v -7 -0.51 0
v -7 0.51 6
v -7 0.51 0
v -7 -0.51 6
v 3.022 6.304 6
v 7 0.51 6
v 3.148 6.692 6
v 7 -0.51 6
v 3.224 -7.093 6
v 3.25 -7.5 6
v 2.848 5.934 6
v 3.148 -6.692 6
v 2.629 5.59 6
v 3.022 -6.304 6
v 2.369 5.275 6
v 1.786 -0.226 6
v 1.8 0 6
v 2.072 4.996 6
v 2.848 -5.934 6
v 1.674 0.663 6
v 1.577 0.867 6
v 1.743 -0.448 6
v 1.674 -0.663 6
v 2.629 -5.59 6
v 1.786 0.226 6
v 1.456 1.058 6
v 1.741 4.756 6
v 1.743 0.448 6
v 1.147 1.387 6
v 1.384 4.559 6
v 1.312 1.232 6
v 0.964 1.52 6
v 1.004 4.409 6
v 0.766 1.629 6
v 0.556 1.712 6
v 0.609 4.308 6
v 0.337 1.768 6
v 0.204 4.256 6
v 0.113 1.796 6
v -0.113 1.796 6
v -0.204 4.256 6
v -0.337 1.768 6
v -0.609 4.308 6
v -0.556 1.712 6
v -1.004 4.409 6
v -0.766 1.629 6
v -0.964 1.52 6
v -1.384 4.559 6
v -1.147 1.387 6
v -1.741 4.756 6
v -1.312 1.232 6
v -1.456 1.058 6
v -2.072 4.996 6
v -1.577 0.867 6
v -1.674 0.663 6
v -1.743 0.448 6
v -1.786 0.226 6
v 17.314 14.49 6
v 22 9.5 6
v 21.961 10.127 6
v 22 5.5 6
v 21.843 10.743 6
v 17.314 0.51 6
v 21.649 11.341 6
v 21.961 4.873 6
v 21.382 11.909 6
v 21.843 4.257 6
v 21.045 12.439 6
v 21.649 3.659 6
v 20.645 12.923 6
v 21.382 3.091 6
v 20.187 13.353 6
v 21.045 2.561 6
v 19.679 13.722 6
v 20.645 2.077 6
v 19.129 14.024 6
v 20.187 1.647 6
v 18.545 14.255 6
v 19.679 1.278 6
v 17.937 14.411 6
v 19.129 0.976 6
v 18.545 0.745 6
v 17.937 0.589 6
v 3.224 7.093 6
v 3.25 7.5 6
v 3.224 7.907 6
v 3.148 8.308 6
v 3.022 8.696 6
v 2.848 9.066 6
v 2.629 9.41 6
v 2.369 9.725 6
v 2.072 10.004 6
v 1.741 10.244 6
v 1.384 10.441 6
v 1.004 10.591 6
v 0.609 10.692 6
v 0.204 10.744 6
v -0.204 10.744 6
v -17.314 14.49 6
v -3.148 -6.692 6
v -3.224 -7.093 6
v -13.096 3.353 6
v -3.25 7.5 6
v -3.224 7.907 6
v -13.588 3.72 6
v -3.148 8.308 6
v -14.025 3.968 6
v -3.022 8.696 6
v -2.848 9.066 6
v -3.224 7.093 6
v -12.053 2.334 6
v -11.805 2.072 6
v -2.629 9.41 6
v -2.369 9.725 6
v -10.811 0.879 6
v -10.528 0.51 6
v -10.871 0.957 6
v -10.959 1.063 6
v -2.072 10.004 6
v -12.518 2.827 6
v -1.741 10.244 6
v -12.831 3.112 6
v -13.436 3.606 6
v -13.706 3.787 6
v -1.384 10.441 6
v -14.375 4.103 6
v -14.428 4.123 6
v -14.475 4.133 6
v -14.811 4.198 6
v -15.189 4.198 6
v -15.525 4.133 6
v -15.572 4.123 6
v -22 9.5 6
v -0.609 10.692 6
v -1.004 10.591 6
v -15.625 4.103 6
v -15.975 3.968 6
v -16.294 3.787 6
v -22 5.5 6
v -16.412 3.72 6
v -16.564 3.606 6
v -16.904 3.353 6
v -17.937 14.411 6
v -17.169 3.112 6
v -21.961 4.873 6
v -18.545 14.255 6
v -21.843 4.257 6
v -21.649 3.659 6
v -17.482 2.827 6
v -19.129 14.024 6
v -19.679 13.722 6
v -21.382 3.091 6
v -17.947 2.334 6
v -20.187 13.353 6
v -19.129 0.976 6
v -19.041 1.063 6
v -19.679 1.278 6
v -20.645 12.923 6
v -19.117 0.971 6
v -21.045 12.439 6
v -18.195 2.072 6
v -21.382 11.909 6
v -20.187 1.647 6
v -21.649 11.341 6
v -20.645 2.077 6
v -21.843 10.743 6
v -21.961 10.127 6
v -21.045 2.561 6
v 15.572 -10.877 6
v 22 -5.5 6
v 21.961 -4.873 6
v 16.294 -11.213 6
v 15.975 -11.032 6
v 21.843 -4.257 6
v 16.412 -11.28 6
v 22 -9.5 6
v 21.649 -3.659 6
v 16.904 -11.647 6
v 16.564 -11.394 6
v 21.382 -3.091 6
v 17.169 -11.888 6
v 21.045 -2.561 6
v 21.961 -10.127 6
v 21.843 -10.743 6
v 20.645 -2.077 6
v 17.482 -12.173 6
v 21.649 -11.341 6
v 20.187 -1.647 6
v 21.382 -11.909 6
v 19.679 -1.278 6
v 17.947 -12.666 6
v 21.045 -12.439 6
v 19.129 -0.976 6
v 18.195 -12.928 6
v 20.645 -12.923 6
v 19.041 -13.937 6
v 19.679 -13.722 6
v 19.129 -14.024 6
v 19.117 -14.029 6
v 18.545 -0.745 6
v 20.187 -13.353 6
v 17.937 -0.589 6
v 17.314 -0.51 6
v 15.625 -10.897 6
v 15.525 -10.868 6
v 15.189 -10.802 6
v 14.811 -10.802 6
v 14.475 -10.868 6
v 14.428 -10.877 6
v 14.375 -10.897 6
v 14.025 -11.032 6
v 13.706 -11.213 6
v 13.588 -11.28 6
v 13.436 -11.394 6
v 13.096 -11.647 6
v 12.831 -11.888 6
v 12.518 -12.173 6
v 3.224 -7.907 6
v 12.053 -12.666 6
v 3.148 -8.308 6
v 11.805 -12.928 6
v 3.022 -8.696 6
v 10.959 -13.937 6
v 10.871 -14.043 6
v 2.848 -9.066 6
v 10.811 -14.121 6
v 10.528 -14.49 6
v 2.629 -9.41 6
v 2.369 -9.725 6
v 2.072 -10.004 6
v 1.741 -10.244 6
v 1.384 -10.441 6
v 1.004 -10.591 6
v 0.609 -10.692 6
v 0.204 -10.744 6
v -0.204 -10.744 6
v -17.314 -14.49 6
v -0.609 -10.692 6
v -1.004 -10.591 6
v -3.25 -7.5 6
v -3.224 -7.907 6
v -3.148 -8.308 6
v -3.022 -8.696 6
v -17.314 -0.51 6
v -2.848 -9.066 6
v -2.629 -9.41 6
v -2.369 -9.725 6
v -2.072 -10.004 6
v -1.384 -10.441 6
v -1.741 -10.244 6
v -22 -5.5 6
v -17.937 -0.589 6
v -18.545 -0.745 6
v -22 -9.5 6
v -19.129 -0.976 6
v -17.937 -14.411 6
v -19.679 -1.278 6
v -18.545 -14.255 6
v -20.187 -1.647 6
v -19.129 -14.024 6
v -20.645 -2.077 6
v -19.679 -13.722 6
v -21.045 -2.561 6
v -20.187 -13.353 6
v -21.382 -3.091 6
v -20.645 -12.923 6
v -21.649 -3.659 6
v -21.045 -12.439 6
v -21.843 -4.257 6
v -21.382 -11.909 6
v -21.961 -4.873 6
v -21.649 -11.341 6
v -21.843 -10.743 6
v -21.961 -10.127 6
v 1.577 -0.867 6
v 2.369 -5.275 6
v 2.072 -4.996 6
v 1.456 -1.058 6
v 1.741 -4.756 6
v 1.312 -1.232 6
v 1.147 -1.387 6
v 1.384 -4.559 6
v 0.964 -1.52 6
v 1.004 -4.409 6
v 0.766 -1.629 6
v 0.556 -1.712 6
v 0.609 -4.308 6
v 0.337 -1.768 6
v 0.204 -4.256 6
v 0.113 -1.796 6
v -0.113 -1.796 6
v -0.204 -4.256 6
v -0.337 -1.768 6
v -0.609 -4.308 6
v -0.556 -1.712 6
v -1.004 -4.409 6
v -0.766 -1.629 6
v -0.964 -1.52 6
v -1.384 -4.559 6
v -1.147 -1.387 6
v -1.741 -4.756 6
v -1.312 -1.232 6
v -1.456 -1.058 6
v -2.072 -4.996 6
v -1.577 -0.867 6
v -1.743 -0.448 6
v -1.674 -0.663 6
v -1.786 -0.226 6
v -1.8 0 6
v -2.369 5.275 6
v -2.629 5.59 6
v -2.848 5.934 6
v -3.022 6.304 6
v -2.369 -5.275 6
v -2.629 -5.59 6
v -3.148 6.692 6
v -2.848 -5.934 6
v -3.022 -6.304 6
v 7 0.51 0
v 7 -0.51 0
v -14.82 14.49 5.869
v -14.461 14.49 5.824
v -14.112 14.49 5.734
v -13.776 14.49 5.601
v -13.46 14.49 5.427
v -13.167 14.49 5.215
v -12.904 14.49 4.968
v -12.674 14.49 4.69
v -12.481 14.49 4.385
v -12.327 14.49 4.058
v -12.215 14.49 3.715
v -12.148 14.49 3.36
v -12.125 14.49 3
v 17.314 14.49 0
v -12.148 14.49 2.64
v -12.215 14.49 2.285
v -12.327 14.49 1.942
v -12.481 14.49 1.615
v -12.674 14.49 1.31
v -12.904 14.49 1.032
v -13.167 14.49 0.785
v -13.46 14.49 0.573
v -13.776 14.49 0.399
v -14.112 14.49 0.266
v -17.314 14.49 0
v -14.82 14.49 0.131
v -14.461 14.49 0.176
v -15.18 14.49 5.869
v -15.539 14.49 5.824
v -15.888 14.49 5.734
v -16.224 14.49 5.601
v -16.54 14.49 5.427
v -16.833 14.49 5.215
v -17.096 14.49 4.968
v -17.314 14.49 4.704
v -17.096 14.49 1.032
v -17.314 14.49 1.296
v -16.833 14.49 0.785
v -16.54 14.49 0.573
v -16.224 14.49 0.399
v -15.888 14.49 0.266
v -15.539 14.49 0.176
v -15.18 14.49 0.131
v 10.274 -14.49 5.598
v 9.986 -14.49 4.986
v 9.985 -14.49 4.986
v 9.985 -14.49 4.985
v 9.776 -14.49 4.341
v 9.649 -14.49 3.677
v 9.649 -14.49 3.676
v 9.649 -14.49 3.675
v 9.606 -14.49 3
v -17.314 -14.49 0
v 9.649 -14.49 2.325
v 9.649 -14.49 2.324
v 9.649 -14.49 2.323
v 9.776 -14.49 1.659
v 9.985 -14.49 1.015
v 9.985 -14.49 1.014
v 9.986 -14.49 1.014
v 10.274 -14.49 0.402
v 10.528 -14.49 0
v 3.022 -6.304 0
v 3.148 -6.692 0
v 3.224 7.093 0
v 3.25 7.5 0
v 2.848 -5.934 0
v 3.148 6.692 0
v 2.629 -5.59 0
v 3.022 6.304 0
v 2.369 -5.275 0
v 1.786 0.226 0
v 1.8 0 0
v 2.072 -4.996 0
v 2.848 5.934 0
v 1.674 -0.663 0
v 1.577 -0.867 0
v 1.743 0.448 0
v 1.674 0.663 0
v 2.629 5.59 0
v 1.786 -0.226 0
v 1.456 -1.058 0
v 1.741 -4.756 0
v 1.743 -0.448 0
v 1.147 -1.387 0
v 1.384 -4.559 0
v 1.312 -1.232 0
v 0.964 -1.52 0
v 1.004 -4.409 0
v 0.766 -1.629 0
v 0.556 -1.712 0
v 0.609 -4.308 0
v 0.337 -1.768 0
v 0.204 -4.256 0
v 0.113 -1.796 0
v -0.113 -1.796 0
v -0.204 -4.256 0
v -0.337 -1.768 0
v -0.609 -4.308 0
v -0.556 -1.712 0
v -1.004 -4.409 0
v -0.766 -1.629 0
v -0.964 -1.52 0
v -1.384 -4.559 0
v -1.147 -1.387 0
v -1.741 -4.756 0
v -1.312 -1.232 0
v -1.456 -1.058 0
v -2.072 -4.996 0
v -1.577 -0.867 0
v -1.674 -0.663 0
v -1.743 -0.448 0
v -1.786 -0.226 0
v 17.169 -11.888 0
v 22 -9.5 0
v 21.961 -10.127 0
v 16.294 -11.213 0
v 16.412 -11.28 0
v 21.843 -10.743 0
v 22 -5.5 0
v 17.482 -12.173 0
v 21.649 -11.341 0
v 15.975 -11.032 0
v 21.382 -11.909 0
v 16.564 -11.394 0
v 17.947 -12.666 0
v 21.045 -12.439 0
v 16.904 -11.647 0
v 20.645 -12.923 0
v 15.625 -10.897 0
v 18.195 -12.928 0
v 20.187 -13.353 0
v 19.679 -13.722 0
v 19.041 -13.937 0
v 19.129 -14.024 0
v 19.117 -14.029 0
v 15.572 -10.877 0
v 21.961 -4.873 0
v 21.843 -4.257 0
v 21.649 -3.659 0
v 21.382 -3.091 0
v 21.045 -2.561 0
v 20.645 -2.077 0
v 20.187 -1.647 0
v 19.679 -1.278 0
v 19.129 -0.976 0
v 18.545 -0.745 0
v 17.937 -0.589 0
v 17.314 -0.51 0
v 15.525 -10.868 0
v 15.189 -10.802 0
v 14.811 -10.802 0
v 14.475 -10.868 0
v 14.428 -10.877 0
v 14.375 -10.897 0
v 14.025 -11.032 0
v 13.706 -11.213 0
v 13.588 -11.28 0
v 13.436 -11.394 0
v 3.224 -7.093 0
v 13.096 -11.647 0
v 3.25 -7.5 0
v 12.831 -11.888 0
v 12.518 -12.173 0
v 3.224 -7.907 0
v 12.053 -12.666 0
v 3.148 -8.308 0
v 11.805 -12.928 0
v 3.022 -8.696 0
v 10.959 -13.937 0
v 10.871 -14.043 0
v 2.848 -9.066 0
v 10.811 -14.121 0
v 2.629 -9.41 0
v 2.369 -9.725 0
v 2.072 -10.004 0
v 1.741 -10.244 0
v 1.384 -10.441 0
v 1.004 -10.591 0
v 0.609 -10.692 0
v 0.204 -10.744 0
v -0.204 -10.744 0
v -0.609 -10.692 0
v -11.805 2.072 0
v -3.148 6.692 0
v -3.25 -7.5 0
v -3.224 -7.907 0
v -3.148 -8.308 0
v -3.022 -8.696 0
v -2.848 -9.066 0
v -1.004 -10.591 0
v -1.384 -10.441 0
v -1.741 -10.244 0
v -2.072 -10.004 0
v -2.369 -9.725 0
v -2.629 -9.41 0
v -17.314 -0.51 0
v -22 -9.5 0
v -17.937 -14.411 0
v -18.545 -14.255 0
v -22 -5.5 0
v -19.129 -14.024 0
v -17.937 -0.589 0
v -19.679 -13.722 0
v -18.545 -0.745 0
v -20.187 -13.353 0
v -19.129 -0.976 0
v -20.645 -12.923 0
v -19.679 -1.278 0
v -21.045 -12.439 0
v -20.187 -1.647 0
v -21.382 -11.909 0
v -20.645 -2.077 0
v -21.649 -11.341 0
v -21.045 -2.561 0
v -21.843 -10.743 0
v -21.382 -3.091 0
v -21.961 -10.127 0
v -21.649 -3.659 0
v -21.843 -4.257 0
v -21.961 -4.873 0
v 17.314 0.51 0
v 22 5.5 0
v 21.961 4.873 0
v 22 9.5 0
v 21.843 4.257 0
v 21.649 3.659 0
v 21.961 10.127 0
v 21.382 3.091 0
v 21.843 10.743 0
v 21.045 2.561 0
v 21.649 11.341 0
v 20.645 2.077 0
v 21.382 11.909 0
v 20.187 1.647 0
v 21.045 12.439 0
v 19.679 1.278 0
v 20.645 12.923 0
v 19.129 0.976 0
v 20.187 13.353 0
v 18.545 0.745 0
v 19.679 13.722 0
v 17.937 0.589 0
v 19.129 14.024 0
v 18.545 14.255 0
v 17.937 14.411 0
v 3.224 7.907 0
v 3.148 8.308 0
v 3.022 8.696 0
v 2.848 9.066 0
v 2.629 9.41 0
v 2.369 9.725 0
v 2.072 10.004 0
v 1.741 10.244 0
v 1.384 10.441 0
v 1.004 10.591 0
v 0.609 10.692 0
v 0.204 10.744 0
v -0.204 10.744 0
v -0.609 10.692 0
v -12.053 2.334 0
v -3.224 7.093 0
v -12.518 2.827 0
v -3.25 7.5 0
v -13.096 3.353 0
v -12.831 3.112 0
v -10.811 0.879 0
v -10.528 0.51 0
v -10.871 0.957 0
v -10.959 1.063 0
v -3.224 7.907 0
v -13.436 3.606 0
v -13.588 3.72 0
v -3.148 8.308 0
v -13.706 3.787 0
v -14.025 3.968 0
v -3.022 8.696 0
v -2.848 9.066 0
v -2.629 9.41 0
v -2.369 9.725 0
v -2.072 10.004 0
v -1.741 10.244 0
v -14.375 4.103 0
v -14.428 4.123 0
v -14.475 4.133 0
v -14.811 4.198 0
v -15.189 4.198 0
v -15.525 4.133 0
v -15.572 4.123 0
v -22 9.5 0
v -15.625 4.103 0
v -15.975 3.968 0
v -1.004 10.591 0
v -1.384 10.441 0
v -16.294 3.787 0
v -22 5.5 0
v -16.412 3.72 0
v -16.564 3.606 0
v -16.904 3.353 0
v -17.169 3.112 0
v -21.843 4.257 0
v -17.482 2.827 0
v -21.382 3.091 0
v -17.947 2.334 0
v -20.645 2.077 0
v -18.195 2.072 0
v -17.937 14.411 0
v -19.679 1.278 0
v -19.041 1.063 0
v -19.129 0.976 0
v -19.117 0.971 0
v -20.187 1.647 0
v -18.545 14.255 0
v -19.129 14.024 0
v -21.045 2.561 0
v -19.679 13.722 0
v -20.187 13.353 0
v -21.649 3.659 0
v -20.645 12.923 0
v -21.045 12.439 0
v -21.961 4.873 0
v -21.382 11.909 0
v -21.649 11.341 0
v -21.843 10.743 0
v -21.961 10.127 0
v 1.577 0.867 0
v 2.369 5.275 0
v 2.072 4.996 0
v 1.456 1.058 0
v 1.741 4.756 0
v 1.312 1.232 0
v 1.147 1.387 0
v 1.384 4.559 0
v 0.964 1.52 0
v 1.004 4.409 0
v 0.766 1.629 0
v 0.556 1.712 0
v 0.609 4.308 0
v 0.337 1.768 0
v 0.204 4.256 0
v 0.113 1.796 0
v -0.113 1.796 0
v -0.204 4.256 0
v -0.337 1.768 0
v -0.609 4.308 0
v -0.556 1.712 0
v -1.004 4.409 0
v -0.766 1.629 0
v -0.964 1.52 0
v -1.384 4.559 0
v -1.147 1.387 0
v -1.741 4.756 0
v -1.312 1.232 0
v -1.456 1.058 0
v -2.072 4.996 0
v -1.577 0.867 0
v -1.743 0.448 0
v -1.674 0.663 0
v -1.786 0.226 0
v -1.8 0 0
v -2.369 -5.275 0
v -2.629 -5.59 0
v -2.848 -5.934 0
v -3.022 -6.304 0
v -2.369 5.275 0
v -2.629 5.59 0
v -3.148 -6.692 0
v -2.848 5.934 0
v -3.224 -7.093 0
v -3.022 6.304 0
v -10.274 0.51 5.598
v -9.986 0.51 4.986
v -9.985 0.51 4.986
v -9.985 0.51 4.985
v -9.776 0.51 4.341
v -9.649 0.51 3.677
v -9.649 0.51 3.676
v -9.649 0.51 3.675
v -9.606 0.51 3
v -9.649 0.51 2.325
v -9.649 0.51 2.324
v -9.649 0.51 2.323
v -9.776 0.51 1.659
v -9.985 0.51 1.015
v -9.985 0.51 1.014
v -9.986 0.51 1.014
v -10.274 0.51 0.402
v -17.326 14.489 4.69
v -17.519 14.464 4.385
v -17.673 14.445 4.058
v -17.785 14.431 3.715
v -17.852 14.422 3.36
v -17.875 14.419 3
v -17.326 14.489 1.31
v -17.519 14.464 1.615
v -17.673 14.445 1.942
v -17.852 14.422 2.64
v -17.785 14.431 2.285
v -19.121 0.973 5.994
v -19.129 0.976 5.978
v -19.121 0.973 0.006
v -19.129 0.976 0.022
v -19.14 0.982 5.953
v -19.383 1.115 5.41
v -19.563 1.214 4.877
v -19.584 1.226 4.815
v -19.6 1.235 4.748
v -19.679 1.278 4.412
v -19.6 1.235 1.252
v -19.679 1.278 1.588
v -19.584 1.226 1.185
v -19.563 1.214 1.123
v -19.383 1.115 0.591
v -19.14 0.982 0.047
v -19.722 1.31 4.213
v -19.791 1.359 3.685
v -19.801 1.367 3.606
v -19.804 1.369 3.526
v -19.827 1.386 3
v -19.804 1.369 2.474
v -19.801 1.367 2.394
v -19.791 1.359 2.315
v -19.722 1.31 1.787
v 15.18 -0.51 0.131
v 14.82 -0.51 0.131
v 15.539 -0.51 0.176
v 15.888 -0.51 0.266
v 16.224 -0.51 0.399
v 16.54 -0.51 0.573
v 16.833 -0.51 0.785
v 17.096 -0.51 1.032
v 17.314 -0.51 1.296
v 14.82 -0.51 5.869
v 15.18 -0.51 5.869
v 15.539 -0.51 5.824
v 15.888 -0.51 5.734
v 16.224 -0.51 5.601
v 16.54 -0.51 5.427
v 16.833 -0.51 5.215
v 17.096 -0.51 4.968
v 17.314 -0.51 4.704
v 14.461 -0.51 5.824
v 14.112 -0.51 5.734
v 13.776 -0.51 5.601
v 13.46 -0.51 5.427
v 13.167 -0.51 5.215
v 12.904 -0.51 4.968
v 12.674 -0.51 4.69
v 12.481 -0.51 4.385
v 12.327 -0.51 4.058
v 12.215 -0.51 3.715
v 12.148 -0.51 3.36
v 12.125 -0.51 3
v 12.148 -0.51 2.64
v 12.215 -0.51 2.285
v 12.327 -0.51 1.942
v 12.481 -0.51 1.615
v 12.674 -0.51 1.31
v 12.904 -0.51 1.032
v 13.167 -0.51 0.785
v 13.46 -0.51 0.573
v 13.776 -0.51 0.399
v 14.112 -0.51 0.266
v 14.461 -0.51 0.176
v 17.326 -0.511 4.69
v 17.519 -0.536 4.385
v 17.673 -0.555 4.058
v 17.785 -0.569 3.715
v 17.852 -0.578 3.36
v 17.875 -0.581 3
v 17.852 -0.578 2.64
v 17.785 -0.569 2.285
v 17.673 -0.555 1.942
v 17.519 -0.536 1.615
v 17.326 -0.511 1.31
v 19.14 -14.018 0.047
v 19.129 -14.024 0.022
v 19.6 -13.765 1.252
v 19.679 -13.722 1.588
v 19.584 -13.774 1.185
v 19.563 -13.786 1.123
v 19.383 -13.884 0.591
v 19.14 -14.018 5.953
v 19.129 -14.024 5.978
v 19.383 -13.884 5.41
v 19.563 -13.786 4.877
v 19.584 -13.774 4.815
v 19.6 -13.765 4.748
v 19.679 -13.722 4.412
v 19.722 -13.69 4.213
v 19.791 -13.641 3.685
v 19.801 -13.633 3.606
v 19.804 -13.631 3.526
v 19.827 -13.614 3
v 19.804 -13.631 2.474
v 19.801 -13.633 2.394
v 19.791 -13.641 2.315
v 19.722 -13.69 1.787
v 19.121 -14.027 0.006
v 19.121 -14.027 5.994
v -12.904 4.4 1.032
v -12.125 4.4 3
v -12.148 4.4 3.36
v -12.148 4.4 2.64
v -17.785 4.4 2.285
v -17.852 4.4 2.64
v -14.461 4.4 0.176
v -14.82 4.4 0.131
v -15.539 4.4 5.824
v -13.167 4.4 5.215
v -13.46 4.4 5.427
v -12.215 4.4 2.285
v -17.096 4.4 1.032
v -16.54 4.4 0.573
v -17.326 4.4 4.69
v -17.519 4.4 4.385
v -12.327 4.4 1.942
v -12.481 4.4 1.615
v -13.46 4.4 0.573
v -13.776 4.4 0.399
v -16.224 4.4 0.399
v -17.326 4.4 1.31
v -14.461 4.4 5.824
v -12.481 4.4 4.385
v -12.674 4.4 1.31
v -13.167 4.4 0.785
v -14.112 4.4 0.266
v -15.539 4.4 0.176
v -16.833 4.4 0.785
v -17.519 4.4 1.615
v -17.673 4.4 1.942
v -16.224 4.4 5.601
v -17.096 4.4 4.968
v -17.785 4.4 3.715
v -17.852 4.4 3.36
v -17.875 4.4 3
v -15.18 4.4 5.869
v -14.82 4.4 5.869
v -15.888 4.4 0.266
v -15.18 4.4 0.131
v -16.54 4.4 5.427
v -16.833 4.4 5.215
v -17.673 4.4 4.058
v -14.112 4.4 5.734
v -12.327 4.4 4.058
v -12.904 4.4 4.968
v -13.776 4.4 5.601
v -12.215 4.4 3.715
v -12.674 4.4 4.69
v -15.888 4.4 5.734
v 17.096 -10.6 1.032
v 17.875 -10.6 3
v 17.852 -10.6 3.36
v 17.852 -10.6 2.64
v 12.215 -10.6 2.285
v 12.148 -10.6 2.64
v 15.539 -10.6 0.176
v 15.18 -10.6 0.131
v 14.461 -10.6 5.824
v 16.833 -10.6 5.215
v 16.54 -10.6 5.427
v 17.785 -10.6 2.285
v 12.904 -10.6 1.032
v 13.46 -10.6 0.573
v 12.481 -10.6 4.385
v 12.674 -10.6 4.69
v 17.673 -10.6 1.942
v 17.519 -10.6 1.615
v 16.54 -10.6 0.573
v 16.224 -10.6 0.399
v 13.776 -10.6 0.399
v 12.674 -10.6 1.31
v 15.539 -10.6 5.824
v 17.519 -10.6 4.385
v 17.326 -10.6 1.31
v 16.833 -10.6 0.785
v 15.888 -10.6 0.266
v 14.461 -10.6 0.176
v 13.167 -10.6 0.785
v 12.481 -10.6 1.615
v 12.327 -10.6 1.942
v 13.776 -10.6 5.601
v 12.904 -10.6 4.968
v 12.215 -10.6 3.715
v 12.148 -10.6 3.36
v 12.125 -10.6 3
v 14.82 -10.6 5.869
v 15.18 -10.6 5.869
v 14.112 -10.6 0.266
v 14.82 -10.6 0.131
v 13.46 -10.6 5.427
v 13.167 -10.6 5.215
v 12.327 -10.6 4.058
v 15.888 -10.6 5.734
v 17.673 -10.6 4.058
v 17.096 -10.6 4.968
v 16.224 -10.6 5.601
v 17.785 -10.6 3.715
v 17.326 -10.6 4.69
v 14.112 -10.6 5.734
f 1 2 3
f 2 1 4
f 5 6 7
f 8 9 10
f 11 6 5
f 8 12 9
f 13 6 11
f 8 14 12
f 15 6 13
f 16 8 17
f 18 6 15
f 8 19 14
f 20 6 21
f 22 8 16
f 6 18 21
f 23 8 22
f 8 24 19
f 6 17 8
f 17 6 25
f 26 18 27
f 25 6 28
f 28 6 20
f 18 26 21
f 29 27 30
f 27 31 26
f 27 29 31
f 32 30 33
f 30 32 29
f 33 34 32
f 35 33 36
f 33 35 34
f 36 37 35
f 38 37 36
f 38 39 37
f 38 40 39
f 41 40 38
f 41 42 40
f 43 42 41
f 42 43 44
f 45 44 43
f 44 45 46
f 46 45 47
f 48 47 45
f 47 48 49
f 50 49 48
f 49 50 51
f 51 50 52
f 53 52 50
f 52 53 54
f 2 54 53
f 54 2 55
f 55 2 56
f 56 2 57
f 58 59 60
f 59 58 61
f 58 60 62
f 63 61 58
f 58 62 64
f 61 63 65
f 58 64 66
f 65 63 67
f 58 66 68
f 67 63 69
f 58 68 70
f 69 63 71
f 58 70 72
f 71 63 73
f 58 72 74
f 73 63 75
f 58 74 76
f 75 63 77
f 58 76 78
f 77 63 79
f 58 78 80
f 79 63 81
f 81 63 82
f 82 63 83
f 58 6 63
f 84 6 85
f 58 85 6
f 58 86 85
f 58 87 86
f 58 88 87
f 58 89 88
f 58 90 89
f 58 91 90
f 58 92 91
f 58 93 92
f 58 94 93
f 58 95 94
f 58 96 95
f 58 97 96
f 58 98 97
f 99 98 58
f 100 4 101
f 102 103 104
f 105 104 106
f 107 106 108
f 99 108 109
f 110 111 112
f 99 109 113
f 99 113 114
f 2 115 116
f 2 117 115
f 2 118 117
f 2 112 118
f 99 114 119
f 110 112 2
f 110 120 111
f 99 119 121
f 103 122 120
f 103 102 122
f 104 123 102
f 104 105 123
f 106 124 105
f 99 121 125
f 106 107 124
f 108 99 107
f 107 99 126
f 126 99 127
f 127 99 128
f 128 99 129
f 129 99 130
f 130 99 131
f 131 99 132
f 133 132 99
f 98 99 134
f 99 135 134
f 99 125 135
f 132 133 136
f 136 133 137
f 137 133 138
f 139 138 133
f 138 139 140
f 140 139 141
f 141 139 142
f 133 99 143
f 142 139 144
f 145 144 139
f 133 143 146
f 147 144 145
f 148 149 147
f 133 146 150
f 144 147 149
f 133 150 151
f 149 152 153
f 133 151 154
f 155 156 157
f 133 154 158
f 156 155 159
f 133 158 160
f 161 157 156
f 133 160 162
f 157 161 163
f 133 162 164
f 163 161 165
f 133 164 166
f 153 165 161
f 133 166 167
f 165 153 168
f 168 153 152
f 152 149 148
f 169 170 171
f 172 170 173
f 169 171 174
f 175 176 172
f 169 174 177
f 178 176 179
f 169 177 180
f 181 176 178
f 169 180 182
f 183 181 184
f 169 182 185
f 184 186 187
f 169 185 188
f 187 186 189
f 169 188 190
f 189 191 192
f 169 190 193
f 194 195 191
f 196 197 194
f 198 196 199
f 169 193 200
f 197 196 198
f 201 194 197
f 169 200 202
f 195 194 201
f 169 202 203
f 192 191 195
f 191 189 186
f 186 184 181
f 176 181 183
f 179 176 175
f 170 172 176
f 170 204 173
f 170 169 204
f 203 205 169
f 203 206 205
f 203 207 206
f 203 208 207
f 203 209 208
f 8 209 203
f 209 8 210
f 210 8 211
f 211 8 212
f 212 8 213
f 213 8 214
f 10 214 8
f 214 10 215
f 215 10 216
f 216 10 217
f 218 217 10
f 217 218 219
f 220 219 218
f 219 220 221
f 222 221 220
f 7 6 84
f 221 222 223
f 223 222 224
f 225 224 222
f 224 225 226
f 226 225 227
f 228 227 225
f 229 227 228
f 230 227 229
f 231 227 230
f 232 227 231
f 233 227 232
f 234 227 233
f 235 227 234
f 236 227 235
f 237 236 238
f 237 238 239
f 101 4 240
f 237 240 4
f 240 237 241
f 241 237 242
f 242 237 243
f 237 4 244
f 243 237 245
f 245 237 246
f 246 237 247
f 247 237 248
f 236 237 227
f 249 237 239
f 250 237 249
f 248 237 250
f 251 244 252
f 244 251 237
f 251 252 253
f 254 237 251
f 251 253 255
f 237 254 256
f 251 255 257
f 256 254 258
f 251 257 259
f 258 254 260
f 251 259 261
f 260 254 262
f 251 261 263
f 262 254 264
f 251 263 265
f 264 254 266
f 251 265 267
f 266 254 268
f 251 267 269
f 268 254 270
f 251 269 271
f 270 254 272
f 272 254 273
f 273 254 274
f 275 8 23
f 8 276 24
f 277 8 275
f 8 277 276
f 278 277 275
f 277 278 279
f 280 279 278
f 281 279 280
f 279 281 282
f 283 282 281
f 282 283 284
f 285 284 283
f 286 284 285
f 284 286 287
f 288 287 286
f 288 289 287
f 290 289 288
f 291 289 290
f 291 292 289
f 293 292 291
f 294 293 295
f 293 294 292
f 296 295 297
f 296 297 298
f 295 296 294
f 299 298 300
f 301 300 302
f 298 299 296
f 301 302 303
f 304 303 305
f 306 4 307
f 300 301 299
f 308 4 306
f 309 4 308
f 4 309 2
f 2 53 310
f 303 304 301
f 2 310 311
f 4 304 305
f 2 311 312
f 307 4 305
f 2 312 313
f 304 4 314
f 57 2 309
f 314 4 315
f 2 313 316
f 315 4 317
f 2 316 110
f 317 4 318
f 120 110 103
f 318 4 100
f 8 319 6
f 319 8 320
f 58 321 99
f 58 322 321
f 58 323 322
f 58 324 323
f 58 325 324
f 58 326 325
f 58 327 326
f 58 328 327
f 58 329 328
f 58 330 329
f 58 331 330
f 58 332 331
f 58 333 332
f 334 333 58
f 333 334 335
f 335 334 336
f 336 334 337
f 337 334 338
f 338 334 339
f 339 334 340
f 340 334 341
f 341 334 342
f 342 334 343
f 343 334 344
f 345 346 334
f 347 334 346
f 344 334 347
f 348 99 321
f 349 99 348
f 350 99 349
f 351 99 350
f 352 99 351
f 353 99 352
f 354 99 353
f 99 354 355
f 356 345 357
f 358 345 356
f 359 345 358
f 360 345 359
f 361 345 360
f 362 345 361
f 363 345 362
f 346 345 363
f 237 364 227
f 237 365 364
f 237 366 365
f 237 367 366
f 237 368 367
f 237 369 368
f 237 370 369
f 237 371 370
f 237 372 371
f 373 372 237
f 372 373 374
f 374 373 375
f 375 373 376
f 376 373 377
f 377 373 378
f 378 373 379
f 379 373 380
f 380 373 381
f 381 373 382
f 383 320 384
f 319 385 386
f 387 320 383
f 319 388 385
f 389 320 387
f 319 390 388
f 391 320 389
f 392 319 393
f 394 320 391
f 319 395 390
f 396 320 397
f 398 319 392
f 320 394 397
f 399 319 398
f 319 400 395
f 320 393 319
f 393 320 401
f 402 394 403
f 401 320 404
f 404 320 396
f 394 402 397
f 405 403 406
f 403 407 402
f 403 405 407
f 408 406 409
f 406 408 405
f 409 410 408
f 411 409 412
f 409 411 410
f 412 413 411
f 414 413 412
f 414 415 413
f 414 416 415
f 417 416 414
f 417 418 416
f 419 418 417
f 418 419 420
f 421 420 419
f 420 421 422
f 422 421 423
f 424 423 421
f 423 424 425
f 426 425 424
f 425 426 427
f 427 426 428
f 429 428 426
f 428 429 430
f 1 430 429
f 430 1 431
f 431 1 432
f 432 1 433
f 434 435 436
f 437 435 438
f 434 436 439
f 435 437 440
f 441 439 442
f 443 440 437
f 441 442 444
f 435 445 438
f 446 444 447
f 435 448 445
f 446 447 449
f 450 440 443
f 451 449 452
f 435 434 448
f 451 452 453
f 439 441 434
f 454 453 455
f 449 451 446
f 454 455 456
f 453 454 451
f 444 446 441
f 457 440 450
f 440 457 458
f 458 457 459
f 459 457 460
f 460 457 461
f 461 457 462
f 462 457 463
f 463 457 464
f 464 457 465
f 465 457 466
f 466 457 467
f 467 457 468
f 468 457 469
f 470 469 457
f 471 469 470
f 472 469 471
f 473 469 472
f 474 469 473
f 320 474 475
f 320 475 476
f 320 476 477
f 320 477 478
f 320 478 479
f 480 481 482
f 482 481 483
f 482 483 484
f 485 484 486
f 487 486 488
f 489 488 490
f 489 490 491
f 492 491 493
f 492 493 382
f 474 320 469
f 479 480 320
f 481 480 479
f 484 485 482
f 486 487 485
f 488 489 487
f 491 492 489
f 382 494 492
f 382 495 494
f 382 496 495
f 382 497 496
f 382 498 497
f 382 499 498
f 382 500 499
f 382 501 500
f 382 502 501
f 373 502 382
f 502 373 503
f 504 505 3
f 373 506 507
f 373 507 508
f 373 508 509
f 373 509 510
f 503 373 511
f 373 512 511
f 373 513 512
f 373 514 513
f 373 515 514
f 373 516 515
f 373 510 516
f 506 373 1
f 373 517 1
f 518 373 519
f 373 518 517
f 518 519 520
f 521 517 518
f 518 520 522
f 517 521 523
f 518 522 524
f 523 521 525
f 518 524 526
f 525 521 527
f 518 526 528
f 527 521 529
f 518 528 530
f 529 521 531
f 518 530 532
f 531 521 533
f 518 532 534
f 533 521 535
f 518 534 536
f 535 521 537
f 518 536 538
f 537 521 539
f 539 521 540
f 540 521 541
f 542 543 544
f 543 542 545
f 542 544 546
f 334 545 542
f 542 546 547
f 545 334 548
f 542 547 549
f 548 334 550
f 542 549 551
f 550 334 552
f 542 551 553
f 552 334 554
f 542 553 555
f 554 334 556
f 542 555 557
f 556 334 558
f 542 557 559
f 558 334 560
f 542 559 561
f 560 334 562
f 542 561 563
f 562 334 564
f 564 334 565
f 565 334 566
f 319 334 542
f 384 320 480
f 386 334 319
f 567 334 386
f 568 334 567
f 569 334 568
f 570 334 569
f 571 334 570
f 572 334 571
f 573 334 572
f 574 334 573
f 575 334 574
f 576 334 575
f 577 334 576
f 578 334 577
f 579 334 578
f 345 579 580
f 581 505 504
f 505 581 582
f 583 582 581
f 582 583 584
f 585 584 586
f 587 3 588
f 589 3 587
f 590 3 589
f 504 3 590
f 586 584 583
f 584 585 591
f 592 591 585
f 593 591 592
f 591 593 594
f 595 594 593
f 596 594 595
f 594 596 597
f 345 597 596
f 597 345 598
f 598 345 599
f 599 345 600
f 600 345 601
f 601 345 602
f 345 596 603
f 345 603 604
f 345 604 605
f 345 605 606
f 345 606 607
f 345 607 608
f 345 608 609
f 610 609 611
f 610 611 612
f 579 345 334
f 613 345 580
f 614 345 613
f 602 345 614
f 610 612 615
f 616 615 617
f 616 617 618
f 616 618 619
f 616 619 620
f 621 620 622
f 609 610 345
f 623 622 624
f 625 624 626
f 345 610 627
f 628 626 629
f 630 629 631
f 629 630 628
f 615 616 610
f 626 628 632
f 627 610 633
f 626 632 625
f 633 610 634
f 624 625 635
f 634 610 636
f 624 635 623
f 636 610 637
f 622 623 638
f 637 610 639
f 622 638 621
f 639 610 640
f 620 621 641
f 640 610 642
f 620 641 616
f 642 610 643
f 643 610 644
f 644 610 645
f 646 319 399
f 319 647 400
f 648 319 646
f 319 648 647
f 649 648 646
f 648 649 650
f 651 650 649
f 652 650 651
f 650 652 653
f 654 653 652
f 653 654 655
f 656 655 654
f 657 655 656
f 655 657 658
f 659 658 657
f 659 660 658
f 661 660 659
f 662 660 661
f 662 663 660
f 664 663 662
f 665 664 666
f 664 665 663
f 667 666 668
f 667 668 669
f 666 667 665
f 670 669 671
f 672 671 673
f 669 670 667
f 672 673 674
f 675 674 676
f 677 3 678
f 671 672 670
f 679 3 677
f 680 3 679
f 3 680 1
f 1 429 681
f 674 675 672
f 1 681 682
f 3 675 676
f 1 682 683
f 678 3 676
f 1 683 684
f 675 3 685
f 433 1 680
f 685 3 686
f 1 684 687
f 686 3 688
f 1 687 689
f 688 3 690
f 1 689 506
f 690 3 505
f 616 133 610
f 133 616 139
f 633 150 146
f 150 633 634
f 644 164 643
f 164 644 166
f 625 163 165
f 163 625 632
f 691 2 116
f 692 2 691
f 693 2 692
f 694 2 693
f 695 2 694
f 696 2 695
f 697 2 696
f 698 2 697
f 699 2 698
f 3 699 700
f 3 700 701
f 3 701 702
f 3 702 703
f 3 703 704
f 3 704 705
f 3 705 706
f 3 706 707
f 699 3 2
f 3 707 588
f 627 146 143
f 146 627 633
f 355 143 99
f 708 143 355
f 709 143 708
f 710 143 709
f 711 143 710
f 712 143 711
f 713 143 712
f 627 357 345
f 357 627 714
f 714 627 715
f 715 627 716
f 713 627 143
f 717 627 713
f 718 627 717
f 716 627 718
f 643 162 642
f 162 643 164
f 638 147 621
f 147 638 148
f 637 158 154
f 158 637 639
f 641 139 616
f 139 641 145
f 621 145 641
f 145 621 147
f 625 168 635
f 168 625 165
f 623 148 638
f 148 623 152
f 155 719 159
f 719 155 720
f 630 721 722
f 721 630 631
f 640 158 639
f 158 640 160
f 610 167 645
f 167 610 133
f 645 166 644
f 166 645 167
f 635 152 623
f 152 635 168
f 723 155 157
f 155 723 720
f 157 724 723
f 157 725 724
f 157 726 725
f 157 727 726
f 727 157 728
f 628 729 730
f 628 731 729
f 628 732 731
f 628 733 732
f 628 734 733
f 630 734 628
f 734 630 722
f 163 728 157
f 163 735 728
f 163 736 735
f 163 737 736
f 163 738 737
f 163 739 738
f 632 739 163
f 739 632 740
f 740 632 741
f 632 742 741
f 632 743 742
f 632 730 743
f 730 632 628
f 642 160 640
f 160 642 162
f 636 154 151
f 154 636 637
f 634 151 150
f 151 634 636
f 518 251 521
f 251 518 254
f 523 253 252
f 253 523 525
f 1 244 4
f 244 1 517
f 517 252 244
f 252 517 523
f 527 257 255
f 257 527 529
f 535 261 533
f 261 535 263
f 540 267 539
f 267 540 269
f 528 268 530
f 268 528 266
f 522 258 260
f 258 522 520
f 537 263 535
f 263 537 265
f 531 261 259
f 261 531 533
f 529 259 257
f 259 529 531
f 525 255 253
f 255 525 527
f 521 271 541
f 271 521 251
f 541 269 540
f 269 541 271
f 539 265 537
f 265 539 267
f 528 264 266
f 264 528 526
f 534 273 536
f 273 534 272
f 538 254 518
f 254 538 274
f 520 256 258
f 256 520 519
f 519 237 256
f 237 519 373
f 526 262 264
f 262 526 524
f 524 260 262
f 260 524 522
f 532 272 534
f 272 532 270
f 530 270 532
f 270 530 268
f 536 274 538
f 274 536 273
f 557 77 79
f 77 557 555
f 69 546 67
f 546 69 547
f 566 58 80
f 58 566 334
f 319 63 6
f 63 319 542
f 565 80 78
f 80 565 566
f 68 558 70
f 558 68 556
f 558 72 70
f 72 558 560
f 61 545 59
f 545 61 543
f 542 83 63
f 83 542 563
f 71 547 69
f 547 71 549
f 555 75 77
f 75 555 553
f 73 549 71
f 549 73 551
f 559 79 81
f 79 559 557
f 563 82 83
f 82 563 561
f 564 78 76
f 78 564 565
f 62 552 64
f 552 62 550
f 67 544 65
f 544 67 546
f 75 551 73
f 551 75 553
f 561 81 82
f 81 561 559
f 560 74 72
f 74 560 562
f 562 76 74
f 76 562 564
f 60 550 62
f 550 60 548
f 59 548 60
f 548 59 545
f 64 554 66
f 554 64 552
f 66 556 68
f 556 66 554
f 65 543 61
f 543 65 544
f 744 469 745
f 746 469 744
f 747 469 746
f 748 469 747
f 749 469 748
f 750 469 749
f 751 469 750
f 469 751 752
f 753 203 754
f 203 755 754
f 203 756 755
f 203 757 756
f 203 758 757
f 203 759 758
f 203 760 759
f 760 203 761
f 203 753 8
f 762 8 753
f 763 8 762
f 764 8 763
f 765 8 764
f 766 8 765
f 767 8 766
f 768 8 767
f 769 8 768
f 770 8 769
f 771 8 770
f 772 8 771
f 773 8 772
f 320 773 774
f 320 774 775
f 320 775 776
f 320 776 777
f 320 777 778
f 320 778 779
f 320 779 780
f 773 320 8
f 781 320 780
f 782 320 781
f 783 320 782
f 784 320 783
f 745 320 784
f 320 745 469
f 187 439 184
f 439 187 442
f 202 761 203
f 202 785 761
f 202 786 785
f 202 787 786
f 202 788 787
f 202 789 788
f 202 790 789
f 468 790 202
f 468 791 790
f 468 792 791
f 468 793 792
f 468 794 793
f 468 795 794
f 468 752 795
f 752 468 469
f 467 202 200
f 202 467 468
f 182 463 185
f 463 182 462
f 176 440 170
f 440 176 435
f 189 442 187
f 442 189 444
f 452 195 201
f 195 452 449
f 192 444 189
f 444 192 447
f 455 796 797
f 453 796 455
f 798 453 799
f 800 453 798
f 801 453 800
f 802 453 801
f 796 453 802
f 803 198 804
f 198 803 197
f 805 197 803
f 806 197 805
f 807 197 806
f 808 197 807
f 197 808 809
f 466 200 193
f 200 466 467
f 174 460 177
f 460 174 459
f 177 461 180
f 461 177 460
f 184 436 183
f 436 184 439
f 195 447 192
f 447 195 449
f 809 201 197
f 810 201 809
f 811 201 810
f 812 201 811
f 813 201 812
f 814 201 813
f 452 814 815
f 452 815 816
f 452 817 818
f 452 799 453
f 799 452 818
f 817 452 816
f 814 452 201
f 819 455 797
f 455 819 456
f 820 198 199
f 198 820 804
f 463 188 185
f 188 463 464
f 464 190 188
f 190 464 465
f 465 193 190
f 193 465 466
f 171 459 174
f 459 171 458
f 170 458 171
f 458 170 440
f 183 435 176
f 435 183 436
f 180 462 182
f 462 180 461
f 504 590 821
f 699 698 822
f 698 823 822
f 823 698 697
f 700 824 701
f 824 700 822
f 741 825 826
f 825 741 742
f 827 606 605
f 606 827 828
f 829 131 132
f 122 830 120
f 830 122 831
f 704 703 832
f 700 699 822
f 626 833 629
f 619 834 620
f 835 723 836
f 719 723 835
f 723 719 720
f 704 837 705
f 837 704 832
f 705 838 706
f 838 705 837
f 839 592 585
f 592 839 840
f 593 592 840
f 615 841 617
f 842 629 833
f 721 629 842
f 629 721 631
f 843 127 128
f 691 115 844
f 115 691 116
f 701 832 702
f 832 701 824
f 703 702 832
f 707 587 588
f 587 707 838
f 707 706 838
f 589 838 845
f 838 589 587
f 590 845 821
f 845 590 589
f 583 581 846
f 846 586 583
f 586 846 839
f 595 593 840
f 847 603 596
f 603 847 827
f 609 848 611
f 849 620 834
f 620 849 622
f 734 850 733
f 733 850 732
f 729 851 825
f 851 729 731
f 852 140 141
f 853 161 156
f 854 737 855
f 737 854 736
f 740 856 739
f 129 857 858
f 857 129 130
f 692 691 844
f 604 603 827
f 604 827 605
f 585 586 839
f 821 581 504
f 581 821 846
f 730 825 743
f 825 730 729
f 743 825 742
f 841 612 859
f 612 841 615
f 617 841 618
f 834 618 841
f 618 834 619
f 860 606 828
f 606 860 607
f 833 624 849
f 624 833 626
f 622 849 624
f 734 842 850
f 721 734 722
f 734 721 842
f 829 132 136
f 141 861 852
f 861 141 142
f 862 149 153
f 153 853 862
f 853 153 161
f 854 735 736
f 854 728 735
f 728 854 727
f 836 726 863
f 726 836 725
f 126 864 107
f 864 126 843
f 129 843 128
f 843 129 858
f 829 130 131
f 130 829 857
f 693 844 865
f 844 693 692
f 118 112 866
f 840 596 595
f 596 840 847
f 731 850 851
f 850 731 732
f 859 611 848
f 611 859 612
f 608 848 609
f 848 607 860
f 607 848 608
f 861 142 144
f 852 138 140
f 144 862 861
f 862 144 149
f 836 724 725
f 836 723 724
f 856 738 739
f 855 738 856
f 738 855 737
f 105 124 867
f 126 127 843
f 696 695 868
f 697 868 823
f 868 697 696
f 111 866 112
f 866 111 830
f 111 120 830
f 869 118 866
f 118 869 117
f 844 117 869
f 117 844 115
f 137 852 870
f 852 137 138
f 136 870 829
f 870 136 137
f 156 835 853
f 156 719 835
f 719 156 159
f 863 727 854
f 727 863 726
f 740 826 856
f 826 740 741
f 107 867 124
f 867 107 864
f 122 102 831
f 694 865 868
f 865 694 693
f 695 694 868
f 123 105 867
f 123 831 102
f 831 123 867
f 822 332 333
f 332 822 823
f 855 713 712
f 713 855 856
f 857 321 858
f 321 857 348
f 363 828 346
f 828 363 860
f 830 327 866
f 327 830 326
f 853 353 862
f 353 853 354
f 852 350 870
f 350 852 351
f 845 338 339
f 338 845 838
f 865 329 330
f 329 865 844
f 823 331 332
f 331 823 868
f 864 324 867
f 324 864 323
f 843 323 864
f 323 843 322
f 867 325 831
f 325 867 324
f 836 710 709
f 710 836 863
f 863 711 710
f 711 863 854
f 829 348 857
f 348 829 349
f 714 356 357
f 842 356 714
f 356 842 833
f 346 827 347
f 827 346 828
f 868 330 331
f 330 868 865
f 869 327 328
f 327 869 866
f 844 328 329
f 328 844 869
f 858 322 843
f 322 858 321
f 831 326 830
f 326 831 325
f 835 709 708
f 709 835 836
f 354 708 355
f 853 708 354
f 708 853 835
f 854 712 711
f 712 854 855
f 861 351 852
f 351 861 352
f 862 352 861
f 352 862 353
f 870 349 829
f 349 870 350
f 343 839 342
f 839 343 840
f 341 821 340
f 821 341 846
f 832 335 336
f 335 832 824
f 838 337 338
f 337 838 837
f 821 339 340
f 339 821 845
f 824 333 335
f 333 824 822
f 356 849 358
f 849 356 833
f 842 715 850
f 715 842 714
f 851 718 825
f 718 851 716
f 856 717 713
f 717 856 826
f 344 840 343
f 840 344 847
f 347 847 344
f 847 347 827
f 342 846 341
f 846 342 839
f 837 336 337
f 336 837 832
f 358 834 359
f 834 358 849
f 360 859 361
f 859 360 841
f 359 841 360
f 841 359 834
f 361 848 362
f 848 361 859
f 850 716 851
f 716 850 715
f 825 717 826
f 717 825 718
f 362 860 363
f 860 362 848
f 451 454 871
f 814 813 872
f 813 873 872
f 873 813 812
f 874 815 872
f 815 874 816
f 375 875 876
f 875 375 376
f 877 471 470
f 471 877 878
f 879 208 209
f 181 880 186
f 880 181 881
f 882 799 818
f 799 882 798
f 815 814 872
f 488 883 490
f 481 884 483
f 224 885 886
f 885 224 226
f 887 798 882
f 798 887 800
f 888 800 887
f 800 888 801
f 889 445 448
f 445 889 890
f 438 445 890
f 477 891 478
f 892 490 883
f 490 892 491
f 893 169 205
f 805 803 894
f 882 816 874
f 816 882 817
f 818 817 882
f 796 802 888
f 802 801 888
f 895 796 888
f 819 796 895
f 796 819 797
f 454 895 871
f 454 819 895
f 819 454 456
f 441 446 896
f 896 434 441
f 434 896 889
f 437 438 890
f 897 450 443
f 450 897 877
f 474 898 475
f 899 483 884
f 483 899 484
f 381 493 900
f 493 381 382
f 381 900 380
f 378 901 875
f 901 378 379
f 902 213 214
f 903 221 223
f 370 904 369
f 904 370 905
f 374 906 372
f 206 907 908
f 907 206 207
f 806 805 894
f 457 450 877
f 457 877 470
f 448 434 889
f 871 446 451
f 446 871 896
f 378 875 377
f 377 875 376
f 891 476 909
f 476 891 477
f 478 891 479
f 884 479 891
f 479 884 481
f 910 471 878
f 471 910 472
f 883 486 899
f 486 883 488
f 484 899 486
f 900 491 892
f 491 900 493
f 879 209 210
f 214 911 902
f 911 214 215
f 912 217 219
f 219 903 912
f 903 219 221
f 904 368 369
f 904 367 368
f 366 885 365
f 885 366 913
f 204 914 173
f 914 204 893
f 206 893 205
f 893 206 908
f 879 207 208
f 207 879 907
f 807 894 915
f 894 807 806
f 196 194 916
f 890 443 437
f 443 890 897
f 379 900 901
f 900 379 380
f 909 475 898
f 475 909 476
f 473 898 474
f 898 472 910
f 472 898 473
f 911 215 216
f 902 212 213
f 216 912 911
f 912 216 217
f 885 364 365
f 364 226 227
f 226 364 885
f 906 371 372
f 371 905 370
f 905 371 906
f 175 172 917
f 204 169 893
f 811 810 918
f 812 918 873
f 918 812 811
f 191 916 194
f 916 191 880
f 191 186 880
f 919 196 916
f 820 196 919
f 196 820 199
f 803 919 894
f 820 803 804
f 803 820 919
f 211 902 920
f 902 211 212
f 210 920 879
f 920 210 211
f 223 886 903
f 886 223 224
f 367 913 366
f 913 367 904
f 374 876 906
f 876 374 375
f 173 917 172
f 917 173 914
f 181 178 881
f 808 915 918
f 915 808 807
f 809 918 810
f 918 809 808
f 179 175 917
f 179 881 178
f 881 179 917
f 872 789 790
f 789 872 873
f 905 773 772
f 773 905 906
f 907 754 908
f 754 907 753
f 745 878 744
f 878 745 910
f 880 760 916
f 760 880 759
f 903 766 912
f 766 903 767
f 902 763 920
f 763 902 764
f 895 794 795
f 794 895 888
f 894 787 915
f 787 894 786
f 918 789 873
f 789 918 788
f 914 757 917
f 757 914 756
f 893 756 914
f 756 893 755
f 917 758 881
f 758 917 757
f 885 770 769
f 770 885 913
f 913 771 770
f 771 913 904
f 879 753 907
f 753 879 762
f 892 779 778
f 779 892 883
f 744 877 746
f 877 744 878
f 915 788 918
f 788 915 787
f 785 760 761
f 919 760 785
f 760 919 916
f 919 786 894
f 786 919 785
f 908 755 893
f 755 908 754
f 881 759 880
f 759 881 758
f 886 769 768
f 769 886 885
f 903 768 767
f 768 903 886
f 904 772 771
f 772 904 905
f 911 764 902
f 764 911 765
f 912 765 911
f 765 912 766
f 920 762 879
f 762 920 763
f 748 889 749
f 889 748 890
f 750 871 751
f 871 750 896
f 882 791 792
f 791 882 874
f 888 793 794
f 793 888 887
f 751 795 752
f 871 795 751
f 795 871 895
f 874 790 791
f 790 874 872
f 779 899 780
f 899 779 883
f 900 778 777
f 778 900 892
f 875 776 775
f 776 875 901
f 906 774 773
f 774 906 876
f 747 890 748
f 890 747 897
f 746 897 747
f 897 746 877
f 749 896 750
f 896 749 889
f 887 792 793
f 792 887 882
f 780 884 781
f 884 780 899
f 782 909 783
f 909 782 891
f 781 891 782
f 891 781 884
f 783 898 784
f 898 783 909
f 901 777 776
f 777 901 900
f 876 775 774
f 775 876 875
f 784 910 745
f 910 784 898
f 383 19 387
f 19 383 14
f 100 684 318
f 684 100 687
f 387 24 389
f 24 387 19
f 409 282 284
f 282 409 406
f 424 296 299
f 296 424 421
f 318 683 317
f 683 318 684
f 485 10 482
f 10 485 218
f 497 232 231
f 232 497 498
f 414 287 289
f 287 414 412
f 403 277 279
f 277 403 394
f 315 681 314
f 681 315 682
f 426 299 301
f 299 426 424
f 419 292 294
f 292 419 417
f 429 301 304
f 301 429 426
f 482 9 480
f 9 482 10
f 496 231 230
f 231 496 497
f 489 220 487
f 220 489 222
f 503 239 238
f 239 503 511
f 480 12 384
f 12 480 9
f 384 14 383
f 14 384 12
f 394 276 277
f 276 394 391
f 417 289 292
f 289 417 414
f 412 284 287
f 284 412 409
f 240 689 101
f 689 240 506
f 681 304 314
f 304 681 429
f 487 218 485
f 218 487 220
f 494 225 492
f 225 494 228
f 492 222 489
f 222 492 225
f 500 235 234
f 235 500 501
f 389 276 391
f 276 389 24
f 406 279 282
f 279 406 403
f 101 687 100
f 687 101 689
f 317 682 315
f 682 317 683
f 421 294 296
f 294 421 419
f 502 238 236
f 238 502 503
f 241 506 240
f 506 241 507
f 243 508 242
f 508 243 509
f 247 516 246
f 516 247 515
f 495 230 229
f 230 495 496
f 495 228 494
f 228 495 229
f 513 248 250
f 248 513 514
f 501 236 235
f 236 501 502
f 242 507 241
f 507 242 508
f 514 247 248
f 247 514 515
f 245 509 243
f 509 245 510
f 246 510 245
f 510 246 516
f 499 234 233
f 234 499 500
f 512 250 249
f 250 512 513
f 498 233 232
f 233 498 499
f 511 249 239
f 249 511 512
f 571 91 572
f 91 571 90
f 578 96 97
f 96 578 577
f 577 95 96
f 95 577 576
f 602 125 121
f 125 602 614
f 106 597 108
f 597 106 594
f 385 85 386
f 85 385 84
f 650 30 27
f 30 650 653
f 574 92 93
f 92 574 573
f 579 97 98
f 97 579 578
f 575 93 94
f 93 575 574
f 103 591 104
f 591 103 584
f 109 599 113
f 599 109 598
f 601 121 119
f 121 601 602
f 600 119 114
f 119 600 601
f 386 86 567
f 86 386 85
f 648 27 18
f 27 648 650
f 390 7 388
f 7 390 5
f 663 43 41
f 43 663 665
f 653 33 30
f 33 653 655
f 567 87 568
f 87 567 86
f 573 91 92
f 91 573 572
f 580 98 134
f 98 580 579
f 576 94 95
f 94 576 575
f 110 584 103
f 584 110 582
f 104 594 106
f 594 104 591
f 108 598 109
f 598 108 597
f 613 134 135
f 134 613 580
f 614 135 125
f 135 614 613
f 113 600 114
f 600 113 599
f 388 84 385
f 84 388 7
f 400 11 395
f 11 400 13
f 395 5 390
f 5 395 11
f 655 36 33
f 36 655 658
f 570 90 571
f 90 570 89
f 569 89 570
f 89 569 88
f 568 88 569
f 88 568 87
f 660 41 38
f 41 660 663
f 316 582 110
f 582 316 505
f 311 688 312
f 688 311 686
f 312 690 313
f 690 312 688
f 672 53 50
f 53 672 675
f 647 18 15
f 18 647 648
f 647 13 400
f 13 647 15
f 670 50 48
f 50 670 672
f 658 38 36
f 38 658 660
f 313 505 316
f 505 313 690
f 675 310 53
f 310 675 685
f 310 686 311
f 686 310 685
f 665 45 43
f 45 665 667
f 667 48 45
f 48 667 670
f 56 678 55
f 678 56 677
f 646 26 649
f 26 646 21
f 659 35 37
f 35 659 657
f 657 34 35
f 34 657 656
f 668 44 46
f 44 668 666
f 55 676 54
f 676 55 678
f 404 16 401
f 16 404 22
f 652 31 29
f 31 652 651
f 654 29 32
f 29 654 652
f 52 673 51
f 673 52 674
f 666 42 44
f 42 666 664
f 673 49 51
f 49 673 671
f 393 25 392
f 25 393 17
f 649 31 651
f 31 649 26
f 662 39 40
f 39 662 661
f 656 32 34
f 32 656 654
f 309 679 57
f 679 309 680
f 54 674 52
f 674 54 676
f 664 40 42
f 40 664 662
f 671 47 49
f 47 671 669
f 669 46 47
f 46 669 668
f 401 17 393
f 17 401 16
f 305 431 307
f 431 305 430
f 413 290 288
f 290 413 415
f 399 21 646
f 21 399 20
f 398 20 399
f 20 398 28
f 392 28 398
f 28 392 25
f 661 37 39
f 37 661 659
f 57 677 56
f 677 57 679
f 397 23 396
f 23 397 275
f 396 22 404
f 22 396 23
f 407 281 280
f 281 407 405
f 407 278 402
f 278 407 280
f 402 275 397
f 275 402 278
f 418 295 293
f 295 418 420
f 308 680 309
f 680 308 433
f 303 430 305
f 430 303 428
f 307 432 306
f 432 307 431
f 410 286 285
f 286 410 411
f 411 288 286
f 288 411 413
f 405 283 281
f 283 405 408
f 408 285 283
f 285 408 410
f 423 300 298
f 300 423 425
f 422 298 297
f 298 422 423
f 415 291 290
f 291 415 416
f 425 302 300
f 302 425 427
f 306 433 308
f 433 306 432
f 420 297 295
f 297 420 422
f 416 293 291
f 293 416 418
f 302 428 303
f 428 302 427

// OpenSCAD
$fn = 50;


difference() {
	union() {
		hull() {
			translate(v = [-2.0000000000, 9.5000000000, 0]) {
				cylinder(h = 6, r = 5);
			}
			translate(v = [2.0000000000, 9.5000000000, 0]) {
				cylinder(h = 6, r = 5);
			}
			translate(v = [-2.0000000000, -9.5000000000, 0]) {
				cylinder(h = 6, r = 5);
			}
			translate(v = [2.0000000000, -9.5000000000, 0]) {
				cylinder(h = 6, r = 5);
			}
		}
		translate(v = [-7.5000000000, 7.5000000000, 0]) {
			hull() {
				translate(v = [-9.5000000000, 2.0000000000, 0]) {
					cylinder(h = 6, r = 5);
				}
				translate(v = [9.5000000000, 2.0000000000, 0]) {
					cylinder(h = 6, r = 5);
				}
				translate(v = [-9.5000000000, -2.0000000000, 0]) {
					cylinder(h = 6, r = 5);
				}
				translate(v = [9.5000000000, -2.0000000000, 0]) {
					cylinder(h = 6, r = 5);
				}
			}
		}
		translate(v = [-7.5000000000, -7.5000000000, 0]) {
			hull() {
				translate(v = [-9.5000000000, 2.0000000000, 0]) {
					cylinder(h = 6, r = 5);
				}
				translate(v = [9.5000000000, 2.0000000000, 0]) {
					cylinder(h = 6, r = 5);
				}
				translate(v = [-9.5000000000, -2.0000000000, 0]) {
					cylinder(h = 6, r = 5);
				}
				translate(v = [9.5000000000, -2.0000000000, 0]) {
					cylinder(h = 6, r = 5);
				}
			}
		}
		translate(v = [7.5000000000, 7.5000000000, 0]) {
			hull() {
				translate(v = [-9.5000000000, 2.0000000000, 0]) {
					cylinder(h = 6, r = 5);
				}
				translate(v = [9.5000000000, 2.0000000000, 0]) {
					cylinder(h = 6, r = 5);
				}
				translate(v = [-9.5000000000, -2.0000000000, 0]) {
					cylinder(h = 6, r = 5);
				}
				translate(v = [9.5000000000, -2.0000000000, 0]) {
					cylinder(h = 6, r = 5);
				}
			}
		}
		translate(v = [7.5000000000, -7.5000000000, 0]) {
			hull() {
				translate(v = [-9.5000000000, 2.0000000000, 0]) {
					cylinder(h = 6, r = 5);
				}
				translate(v = [9.5000000000, 2.0000000000, 0]) {
					cylinder(h = 6, r = 5);
				}
				translate(v = [-9.5000000000, -2.0000000000, 0]) {
					cylinder(h = 6, r = 5);
				}
				translate(v = [9.5000000000, -2.0000000000, 0]) {
					cylinder(h = 6, r = 5);
				}
			}
		}
	}
	union() {
		translate(v = [-15.0000000000, 0.5000000000, 3.0000000000]) {
			rotate(a = [90, 0, 0]) {
				difference() {
					union() {
						#translate(v = [0, 0, -14.0000000000]) {
							cylinder(h = 14, r = 2.6000000000);
						}
						#translate(v = [0, 0, -3.9000000000]) {
							cylinder(h = 3.9000000000, r1 = 2.8750000000, r2 = 5.4000000000);
						}
						#translate(v = [0, 0, -14.0000000000]) {
							cylinder(h = 14, r = 2.8750000000);
						}
						#translate(v = [0, 0, -14.0000000000]) {
							cylinder(h = 14, r = 2.6000000000);
						}
					}
					union();
				}
			}
		}
		translate(v = [15.0000000000, -14.5000000000, 3.0000000000]) {
			rotate(a = [90, 0, 0]) {
				difference() {
					union() {
						#translate(v = [0, 0, -14.0000000000]) {
							cylinder(h = 14, r = 2.6000000000);
						}
						#translate(v = [0, 0, -3.9000000000]) {
							cylinder(h = 3.9000000000, r1 = 2.8750000000, r2 = 5.4000000000);
						}
						#translate(v = [0, 0, -14.0000000000]) {
							cylinder(h = 14, r = 2.8750000000);
						}
						#translate(v = [0, 0, -14.0000000000]) {
							cylinder(h = 14, r = 2.6000000000);
						}
					}
					union();
				}
			}
		}
		translate(v = [0.0000000000, -7.5000000000, 0]) {
			translate(v = [0, 0, -100]) {
				cylinder(h = 200, r = 3.2500000000);
			}
		}
		translate(v = [0.0000000000, 7.5000000000, 0]) {
			translate(v = [0, 0, -100]) {
				cylinder(h = 200, r = 3.2500000000);
			}
		}
		translate(v = [0.0000000000, -7.5000000000, 0]) {
			translate(v = [0, 0, -100]) {
				cylinder(h = 200, r = 1.8000000000);
			}
		}
		translate(v = [0, 0, -100]) {
			cylinder(h = 200, r = 1.8000000000);
		}
		translate(v = [0.0000000000, 7.5000000000, 0]) {
			translate(v = [0, 0, -100]) {
				cylinder(h = 200, r = 1.8000000000);
			}
		}
	}
}
